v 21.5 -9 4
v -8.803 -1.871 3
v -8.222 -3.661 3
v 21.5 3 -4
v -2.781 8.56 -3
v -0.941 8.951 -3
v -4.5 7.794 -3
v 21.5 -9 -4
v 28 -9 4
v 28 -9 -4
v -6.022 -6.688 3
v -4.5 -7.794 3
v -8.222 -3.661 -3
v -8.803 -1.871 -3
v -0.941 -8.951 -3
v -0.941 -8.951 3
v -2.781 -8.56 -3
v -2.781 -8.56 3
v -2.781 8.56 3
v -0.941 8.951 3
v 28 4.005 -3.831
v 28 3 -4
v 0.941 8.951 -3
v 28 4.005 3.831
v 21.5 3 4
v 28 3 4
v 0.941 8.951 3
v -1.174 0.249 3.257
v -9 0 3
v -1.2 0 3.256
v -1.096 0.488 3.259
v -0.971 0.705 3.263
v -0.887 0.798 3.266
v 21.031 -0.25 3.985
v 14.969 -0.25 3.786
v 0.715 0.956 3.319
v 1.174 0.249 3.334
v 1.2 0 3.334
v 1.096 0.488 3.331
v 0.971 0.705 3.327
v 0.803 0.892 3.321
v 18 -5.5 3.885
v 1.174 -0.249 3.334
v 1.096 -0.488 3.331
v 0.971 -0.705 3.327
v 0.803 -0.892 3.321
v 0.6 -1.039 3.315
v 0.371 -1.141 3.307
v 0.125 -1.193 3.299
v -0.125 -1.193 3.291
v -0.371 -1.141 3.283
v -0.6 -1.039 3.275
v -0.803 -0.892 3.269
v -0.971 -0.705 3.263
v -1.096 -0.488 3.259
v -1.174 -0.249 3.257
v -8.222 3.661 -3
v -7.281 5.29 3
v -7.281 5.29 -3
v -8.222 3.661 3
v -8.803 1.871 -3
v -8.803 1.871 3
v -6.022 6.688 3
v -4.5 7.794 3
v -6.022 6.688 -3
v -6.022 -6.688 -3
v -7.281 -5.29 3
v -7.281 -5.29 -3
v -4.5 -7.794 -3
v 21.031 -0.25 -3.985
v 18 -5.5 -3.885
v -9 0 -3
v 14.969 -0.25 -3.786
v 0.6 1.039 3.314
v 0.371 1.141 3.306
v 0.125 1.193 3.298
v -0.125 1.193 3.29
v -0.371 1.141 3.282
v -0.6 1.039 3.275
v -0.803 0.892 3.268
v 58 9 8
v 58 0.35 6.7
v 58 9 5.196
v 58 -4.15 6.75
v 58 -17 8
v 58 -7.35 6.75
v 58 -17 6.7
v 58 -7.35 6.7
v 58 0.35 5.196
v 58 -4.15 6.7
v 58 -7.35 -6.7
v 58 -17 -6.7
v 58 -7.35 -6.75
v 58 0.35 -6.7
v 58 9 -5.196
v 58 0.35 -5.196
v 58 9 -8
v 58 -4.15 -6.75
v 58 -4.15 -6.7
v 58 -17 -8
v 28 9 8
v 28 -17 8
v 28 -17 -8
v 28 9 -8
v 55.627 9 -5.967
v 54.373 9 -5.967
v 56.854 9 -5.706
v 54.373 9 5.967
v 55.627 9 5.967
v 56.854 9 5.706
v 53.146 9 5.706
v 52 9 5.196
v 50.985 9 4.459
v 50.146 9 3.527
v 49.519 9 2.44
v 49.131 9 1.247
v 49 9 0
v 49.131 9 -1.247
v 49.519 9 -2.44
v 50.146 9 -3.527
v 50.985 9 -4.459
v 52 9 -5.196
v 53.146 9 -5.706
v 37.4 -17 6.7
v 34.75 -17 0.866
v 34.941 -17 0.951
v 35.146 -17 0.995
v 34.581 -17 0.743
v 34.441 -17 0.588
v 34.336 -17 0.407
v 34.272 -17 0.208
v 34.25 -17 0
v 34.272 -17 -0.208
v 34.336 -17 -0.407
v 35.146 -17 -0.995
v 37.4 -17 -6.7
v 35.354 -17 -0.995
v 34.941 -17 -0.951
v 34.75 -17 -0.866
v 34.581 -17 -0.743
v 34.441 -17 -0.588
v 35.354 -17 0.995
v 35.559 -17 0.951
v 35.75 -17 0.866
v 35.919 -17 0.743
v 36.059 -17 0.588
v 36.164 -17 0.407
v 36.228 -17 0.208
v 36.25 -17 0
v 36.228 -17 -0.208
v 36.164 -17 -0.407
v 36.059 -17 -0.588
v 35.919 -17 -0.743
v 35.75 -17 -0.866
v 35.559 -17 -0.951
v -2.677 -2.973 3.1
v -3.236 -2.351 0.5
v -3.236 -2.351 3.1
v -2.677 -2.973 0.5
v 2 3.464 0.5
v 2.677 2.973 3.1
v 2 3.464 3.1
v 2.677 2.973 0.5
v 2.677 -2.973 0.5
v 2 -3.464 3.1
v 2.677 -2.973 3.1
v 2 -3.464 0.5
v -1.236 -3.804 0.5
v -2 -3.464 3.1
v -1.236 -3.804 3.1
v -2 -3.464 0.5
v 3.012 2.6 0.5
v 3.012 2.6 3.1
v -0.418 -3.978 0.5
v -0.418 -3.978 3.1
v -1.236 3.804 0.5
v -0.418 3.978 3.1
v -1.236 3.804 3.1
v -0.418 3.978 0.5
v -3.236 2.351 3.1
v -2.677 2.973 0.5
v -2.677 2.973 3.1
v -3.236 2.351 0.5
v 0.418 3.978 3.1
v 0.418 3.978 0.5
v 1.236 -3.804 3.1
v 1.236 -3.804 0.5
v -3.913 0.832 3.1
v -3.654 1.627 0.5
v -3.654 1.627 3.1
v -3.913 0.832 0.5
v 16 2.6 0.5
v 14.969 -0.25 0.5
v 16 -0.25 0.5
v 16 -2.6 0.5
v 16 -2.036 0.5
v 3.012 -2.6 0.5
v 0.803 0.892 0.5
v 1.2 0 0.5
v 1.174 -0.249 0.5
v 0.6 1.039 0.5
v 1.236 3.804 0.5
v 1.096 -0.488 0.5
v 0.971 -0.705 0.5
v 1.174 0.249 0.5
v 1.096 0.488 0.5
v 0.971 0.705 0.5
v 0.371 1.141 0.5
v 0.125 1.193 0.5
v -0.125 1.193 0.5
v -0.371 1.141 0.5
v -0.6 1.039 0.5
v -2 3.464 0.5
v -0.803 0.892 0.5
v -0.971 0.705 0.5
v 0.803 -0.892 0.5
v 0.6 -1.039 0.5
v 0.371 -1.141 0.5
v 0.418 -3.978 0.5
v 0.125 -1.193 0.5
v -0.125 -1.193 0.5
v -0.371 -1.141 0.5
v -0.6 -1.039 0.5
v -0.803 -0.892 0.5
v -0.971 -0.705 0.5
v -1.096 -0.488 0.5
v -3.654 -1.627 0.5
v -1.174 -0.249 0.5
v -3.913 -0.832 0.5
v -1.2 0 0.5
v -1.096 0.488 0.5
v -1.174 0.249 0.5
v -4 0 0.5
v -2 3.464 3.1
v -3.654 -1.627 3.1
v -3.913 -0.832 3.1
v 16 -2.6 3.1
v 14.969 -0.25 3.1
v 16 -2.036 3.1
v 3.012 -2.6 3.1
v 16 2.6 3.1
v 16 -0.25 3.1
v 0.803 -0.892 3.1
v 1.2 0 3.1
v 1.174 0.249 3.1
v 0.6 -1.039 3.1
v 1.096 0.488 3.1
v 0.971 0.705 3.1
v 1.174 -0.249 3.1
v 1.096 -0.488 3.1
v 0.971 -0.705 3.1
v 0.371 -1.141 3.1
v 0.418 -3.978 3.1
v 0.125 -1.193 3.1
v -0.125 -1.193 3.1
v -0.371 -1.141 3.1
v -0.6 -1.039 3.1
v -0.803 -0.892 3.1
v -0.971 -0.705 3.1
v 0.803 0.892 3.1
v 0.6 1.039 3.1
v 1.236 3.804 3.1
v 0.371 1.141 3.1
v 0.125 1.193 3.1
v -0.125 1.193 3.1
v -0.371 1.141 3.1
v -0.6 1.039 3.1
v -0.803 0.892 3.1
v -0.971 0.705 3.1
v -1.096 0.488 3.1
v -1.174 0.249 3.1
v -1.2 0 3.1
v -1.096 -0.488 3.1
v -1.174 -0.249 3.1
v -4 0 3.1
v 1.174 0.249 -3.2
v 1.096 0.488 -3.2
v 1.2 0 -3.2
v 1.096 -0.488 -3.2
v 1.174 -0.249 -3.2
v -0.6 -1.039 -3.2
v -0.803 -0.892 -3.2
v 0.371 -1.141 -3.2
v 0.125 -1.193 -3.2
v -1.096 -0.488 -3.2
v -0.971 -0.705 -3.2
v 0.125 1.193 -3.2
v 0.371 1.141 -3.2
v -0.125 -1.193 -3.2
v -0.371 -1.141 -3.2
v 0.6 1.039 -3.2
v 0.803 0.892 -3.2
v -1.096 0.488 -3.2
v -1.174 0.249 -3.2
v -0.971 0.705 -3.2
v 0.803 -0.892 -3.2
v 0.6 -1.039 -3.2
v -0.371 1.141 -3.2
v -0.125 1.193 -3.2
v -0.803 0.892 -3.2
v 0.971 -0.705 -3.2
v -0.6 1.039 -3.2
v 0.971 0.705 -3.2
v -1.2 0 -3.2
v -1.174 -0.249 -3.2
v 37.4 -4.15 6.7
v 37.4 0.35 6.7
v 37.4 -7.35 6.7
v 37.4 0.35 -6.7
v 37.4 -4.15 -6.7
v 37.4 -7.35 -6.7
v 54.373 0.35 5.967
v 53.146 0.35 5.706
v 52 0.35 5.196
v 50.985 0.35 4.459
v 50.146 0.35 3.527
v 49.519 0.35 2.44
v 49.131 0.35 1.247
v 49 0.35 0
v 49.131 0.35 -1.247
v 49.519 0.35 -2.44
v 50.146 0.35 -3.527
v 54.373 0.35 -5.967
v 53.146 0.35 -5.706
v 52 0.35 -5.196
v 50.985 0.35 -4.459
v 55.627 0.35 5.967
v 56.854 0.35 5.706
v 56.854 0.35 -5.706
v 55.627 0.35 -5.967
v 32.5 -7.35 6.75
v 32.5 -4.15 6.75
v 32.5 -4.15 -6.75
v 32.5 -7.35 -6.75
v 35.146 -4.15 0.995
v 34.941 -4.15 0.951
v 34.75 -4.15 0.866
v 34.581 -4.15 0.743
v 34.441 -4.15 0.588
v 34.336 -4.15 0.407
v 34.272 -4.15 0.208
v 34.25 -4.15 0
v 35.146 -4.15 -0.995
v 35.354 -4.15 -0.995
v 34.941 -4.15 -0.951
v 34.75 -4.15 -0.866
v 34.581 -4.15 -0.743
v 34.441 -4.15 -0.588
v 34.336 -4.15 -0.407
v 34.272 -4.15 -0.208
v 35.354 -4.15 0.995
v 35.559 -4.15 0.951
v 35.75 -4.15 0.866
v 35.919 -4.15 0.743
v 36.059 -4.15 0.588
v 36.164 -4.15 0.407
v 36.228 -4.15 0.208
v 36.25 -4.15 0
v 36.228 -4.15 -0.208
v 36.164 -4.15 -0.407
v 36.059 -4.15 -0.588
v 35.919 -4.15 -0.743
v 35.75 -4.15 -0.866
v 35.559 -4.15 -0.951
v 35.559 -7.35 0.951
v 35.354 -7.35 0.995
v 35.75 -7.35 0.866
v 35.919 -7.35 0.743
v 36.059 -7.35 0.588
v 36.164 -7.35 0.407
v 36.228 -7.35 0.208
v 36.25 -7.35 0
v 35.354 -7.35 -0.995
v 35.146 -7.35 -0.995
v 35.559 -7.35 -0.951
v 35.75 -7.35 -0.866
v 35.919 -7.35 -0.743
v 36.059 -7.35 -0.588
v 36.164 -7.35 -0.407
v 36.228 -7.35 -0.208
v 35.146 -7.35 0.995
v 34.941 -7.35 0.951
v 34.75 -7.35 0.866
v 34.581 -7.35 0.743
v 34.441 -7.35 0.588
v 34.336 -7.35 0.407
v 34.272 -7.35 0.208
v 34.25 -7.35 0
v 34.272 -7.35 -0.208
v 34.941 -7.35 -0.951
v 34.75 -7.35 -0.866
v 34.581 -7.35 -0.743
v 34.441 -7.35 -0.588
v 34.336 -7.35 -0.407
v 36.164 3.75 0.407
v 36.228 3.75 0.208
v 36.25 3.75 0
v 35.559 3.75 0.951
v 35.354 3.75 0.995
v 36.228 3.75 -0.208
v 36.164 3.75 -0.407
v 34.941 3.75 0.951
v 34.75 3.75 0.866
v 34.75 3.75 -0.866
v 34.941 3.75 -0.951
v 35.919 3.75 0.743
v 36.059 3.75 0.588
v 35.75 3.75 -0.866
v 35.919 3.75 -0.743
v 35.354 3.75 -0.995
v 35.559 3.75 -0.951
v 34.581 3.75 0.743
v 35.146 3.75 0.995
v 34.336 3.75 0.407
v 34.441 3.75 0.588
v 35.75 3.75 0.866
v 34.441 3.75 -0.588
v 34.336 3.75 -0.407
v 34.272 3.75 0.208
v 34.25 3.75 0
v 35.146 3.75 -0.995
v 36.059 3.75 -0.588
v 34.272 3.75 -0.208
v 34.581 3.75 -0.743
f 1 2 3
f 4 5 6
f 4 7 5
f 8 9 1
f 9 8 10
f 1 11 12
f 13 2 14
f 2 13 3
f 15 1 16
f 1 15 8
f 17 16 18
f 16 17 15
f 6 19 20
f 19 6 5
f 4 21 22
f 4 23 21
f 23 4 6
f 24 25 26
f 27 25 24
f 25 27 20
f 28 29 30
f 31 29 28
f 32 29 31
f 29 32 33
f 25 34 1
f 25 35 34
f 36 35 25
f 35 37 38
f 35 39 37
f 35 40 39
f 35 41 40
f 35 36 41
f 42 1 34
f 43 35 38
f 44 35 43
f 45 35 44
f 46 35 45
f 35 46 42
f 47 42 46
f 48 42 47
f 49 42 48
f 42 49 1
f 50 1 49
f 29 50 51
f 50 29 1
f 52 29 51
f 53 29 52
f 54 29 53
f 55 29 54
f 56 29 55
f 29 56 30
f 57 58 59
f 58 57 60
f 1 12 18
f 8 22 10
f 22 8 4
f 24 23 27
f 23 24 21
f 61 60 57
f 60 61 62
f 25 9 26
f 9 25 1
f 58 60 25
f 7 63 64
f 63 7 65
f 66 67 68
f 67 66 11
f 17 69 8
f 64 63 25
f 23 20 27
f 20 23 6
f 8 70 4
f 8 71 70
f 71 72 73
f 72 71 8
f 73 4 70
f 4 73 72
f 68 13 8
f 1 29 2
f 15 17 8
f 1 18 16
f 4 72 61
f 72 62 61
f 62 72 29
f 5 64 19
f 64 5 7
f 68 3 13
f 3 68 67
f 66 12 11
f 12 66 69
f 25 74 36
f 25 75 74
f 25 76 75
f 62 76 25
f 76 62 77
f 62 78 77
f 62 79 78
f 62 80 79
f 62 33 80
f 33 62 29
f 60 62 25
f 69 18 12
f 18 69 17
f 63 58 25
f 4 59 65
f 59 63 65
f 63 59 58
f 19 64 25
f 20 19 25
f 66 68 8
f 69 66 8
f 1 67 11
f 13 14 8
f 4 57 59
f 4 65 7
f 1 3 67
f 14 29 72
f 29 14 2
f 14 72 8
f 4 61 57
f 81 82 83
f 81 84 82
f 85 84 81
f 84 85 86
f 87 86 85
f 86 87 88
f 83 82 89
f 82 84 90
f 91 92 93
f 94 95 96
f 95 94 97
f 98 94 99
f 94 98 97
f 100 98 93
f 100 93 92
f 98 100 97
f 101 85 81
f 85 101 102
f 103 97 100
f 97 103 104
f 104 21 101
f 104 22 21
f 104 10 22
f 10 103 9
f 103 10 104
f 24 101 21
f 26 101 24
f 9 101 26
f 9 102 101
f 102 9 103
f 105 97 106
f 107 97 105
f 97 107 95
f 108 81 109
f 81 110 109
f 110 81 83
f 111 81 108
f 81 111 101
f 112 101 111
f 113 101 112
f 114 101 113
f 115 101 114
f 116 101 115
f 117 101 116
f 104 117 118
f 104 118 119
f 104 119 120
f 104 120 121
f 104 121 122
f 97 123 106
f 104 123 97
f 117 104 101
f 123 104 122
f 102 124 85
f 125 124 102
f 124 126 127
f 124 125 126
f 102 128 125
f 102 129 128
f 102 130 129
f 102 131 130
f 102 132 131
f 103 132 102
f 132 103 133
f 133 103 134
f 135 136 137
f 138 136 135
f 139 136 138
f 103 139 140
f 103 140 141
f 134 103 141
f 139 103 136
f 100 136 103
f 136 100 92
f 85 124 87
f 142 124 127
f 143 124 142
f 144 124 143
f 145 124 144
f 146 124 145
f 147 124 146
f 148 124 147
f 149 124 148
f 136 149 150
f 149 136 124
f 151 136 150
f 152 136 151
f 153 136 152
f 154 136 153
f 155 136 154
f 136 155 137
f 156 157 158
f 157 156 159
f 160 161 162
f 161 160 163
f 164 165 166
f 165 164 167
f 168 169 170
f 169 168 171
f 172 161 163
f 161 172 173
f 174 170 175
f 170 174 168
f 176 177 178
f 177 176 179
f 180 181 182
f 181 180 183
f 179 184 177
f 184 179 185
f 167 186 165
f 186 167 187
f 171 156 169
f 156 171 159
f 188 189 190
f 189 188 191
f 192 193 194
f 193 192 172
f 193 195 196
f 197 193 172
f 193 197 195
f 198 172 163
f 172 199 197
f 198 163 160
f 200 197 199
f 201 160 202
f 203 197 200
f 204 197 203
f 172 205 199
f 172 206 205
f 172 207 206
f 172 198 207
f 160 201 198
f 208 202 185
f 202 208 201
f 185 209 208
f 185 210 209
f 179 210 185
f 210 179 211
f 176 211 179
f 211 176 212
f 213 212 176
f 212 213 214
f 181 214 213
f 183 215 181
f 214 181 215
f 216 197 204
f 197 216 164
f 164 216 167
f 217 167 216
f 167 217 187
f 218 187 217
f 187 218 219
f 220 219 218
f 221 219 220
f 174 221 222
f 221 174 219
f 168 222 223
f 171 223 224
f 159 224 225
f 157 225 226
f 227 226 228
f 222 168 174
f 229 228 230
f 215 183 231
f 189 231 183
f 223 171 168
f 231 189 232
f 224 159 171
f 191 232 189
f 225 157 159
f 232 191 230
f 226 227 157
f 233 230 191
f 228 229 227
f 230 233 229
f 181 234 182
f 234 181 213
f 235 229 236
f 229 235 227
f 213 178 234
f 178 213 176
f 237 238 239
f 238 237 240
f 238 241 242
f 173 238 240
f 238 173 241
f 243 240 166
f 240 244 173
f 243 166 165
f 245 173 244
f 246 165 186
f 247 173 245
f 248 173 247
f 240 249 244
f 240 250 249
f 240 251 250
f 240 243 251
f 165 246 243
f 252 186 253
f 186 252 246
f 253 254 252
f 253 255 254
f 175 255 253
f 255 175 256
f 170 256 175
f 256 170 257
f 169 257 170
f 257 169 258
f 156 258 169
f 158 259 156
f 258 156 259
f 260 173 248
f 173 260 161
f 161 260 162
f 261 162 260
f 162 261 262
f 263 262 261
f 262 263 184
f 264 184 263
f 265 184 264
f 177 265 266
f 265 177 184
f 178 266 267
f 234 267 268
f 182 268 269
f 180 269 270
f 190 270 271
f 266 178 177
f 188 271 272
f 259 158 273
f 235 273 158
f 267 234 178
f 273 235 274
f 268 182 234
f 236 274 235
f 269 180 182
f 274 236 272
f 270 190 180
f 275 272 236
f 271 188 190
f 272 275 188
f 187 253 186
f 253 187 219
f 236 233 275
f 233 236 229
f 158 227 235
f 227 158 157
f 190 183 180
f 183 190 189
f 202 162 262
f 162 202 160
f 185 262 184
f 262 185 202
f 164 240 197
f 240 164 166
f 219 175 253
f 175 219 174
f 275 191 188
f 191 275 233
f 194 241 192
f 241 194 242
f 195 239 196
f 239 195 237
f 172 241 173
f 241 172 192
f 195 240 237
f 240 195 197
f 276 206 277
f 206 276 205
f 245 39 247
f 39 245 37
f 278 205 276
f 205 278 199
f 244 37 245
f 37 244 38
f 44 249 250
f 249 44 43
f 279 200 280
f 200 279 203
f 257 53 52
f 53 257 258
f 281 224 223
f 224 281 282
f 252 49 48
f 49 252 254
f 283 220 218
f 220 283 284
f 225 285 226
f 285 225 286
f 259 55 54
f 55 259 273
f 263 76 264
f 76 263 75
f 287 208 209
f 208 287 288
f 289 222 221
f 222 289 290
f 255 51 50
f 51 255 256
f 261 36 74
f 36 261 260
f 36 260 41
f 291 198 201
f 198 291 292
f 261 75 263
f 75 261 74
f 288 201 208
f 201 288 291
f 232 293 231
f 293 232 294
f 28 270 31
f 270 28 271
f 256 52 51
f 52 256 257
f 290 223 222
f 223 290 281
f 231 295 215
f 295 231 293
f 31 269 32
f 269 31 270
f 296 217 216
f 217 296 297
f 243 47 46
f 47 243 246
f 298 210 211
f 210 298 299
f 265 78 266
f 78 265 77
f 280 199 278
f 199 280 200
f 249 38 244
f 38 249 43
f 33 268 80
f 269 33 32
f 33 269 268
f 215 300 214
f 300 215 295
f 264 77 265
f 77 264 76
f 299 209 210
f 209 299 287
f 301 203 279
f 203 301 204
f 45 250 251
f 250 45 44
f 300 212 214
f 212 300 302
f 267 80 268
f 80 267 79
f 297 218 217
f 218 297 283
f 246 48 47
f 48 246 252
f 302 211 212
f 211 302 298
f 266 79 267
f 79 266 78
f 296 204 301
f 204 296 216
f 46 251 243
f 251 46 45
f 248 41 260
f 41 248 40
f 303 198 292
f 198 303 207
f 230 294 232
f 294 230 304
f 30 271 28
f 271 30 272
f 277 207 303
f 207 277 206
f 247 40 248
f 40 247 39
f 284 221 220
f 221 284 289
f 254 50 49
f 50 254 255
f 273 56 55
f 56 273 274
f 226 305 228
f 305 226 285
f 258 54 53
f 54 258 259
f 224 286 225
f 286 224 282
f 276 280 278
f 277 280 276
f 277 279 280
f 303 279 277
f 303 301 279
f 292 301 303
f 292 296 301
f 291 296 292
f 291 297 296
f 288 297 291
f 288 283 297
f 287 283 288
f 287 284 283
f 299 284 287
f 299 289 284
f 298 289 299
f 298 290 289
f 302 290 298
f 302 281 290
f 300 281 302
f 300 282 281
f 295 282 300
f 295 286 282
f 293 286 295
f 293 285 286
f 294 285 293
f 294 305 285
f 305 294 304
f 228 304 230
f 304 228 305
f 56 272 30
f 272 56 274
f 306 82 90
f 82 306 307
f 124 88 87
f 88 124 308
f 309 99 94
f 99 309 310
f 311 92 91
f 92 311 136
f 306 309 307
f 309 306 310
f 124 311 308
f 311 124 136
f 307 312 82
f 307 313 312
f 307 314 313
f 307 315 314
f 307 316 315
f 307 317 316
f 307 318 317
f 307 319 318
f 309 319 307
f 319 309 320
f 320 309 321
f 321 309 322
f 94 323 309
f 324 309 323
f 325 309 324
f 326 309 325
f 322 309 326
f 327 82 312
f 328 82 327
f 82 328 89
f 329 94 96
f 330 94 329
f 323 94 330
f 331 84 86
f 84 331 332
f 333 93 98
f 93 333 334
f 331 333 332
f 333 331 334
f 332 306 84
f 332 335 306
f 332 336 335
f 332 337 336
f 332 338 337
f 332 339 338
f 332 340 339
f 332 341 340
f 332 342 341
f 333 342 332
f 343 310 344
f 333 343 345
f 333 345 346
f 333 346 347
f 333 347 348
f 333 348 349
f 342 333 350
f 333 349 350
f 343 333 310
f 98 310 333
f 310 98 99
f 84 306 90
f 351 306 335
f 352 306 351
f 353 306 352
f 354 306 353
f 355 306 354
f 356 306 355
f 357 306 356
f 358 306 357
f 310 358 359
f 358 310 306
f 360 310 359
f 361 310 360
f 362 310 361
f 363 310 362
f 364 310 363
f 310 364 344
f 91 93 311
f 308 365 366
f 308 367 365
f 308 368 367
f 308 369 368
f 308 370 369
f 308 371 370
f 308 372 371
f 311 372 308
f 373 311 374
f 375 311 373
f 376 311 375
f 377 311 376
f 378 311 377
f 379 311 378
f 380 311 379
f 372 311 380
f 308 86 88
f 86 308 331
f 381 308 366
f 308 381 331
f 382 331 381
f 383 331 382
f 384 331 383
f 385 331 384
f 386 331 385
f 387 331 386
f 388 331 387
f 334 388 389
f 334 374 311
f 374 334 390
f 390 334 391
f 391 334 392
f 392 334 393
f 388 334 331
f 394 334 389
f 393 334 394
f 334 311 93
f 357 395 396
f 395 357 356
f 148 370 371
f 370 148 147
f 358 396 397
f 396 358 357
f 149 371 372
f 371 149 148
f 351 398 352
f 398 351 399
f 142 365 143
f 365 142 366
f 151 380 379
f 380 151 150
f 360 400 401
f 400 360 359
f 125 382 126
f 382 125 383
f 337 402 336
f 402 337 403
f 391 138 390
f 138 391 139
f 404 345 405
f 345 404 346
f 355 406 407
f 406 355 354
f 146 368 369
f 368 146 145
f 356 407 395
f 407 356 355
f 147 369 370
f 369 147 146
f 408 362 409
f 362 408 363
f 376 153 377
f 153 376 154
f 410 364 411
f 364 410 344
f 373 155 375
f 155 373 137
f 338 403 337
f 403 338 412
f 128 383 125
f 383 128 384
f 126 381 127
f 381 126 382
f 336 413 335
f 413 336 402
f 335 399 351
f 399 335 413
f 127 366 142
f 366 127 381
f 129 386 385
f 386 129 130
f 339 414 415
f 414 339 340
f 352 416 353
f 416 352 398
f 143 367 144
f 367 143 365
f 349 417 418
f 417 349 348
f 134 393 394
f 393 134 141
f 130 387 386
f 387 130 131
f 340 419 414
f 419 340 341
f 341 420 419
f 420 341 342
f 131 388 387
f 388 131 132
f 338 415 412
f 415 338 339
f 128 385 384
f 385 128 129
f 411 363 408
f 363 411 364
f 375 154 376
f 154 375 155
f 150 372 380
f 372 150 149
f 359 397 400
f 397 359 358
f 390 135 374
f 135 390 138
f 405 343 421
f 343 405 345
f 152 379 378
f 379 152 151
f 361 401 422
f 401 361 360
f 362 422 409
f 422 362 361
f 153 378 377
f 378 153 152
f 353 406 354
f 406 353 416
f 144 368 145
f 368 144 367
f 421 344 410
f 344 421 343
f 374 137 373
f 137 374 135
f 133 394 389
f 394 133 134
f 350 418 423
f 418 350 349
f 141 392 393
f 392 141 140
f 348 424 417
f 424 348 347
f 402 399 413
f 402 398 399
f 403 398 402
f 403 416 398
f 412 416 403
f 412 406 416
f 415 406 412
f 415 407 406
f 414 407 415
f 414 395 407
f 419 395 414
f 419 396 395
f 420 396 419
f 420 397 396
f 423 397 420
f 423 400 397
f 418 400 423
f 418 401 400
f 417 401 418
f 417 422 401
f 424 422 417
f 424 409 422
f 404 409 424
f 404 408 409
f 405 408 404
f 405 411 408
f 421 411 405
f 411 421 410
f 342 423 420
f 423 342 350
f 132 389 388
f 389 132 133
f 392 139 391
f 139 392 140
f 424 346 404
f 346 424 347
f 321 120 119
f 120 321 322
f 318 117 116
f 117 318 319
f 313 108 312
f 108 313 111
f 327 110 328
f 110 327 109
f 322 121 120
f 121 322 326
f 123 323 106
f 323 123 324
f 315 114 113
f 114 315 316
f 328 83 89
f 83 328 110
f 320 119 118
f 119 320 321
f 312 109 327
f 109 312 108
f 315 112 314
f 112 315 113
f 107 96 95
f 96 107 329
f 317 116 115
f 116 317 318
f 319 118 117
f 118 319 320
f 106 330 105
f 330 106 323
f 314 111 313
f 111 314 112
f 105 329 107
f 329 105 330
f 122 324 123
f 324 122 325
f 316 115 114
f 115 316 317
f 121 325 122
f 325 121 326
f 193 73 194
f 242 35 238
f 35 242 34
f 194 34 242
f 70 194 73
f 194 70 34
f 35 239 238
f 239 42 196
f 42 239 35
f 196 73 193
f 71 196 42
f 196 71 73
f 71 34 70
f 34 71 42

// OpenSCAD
// Eslabón de Pata (Fémur) para USS SpiderBot
// Diseñado para albergar el servo de rodilla (Knee Pitch) horizontalmente
// Taller de Programación I - Solemne 3

$fn = 30;

link_len = 55.0; // Longitud entre la cadera y la rodilla
link_h = 25.0;   // Altura en el extremo de la rodilla para sostener el servo
link_t = 16.0;   // Grosor del bloque del servo rodilla (brinda soporte lateral)

// Dimensiones del servo SG90
servo_w = 23.0;
servo_t = 12.5;
servo_h = 22.5;
ear_dist = 28.5;

module eslabon_completo() {
    difference() {
        // Estructura principal del fémur
        union() {
            // Brazo conector desde la cadera
            hull() {
                // Junta de cadera (acople al horn del servo cadera)
                cylinder(r = 9, h = 6, center=true);
                // Transición al bloque del servo
                translate([link_len/2, -3, 0])
                    cube([12, 12, 8], center=true);
            }
            // Bloque que aloja el servo de rodilla (al final del fémur)
            translate([link_len - 12, -4, 0])
                cube([30, 26, link_t], center=true);
        }
        
        // 1. Acople para el horn del servo Cadera (Hip Pitch) en el origen (X=0, Z = +1.8)
        translate([0, 0, 1.8]) {
            cylinder(r=4.0, h=2.6, center=true);
            translate([8.0, 0, 0])
                cube([16.0, 5.2, 2.6], center=true);
            cylinder(r=1.2, h=10, center=true);
        }
        
        // 2. Bolsillo (pocket) para el servo de Rodilla (Knee Pitch)
        // Se coloca de forma que el eje del servo coincida exactamente con X = link_len (55)
        // Tolerancia de 0.3mm total (0.15mm por lado) para un calce a presión firme y sin oscilaciones
        translate([link_len - 5.5, -11.25, 0]) {
            // Bolsillo del cuerpo del servo
            cube([24.2, 23.2, 13.4], center=true);
            
            // Ranura para orejas/bridas (paralela a XZ, en Y = 5.5)
            translate([0, 5.5, 0])
                cube([34.0, 3.2, 13.5], center=true);
                
            // Agujeros para tornillos de orejas (paso estandar de 28.5mm)
            translate([-14.25, 0, 0])
                rotate([90, 0, 0])
                    cylinder(r=1.0, h=30, center=true);
            translate([14.25, 0, 0])
                rotate([90, 0, 0])
                    cylinder(r=1.0, h=30, center=true);
        }
        
        // 3. Abertura delantera (Y+) para que sobresalga el engranaje del servo de rodilla (en X=55)
        translate([link_len, 0, 0])
            rotate([90, 0, 0])
                cylinder(r=6, h=30, center=true);
                
        // 4. Alivios de peso estéticos triangulares en el brazo
        translate([18, -2, 0])
            rotate([0, 0, 30])
                cylinder(r=3.5, h=10, $fn=3, center=true);
    }
}

eslabon_completo();
